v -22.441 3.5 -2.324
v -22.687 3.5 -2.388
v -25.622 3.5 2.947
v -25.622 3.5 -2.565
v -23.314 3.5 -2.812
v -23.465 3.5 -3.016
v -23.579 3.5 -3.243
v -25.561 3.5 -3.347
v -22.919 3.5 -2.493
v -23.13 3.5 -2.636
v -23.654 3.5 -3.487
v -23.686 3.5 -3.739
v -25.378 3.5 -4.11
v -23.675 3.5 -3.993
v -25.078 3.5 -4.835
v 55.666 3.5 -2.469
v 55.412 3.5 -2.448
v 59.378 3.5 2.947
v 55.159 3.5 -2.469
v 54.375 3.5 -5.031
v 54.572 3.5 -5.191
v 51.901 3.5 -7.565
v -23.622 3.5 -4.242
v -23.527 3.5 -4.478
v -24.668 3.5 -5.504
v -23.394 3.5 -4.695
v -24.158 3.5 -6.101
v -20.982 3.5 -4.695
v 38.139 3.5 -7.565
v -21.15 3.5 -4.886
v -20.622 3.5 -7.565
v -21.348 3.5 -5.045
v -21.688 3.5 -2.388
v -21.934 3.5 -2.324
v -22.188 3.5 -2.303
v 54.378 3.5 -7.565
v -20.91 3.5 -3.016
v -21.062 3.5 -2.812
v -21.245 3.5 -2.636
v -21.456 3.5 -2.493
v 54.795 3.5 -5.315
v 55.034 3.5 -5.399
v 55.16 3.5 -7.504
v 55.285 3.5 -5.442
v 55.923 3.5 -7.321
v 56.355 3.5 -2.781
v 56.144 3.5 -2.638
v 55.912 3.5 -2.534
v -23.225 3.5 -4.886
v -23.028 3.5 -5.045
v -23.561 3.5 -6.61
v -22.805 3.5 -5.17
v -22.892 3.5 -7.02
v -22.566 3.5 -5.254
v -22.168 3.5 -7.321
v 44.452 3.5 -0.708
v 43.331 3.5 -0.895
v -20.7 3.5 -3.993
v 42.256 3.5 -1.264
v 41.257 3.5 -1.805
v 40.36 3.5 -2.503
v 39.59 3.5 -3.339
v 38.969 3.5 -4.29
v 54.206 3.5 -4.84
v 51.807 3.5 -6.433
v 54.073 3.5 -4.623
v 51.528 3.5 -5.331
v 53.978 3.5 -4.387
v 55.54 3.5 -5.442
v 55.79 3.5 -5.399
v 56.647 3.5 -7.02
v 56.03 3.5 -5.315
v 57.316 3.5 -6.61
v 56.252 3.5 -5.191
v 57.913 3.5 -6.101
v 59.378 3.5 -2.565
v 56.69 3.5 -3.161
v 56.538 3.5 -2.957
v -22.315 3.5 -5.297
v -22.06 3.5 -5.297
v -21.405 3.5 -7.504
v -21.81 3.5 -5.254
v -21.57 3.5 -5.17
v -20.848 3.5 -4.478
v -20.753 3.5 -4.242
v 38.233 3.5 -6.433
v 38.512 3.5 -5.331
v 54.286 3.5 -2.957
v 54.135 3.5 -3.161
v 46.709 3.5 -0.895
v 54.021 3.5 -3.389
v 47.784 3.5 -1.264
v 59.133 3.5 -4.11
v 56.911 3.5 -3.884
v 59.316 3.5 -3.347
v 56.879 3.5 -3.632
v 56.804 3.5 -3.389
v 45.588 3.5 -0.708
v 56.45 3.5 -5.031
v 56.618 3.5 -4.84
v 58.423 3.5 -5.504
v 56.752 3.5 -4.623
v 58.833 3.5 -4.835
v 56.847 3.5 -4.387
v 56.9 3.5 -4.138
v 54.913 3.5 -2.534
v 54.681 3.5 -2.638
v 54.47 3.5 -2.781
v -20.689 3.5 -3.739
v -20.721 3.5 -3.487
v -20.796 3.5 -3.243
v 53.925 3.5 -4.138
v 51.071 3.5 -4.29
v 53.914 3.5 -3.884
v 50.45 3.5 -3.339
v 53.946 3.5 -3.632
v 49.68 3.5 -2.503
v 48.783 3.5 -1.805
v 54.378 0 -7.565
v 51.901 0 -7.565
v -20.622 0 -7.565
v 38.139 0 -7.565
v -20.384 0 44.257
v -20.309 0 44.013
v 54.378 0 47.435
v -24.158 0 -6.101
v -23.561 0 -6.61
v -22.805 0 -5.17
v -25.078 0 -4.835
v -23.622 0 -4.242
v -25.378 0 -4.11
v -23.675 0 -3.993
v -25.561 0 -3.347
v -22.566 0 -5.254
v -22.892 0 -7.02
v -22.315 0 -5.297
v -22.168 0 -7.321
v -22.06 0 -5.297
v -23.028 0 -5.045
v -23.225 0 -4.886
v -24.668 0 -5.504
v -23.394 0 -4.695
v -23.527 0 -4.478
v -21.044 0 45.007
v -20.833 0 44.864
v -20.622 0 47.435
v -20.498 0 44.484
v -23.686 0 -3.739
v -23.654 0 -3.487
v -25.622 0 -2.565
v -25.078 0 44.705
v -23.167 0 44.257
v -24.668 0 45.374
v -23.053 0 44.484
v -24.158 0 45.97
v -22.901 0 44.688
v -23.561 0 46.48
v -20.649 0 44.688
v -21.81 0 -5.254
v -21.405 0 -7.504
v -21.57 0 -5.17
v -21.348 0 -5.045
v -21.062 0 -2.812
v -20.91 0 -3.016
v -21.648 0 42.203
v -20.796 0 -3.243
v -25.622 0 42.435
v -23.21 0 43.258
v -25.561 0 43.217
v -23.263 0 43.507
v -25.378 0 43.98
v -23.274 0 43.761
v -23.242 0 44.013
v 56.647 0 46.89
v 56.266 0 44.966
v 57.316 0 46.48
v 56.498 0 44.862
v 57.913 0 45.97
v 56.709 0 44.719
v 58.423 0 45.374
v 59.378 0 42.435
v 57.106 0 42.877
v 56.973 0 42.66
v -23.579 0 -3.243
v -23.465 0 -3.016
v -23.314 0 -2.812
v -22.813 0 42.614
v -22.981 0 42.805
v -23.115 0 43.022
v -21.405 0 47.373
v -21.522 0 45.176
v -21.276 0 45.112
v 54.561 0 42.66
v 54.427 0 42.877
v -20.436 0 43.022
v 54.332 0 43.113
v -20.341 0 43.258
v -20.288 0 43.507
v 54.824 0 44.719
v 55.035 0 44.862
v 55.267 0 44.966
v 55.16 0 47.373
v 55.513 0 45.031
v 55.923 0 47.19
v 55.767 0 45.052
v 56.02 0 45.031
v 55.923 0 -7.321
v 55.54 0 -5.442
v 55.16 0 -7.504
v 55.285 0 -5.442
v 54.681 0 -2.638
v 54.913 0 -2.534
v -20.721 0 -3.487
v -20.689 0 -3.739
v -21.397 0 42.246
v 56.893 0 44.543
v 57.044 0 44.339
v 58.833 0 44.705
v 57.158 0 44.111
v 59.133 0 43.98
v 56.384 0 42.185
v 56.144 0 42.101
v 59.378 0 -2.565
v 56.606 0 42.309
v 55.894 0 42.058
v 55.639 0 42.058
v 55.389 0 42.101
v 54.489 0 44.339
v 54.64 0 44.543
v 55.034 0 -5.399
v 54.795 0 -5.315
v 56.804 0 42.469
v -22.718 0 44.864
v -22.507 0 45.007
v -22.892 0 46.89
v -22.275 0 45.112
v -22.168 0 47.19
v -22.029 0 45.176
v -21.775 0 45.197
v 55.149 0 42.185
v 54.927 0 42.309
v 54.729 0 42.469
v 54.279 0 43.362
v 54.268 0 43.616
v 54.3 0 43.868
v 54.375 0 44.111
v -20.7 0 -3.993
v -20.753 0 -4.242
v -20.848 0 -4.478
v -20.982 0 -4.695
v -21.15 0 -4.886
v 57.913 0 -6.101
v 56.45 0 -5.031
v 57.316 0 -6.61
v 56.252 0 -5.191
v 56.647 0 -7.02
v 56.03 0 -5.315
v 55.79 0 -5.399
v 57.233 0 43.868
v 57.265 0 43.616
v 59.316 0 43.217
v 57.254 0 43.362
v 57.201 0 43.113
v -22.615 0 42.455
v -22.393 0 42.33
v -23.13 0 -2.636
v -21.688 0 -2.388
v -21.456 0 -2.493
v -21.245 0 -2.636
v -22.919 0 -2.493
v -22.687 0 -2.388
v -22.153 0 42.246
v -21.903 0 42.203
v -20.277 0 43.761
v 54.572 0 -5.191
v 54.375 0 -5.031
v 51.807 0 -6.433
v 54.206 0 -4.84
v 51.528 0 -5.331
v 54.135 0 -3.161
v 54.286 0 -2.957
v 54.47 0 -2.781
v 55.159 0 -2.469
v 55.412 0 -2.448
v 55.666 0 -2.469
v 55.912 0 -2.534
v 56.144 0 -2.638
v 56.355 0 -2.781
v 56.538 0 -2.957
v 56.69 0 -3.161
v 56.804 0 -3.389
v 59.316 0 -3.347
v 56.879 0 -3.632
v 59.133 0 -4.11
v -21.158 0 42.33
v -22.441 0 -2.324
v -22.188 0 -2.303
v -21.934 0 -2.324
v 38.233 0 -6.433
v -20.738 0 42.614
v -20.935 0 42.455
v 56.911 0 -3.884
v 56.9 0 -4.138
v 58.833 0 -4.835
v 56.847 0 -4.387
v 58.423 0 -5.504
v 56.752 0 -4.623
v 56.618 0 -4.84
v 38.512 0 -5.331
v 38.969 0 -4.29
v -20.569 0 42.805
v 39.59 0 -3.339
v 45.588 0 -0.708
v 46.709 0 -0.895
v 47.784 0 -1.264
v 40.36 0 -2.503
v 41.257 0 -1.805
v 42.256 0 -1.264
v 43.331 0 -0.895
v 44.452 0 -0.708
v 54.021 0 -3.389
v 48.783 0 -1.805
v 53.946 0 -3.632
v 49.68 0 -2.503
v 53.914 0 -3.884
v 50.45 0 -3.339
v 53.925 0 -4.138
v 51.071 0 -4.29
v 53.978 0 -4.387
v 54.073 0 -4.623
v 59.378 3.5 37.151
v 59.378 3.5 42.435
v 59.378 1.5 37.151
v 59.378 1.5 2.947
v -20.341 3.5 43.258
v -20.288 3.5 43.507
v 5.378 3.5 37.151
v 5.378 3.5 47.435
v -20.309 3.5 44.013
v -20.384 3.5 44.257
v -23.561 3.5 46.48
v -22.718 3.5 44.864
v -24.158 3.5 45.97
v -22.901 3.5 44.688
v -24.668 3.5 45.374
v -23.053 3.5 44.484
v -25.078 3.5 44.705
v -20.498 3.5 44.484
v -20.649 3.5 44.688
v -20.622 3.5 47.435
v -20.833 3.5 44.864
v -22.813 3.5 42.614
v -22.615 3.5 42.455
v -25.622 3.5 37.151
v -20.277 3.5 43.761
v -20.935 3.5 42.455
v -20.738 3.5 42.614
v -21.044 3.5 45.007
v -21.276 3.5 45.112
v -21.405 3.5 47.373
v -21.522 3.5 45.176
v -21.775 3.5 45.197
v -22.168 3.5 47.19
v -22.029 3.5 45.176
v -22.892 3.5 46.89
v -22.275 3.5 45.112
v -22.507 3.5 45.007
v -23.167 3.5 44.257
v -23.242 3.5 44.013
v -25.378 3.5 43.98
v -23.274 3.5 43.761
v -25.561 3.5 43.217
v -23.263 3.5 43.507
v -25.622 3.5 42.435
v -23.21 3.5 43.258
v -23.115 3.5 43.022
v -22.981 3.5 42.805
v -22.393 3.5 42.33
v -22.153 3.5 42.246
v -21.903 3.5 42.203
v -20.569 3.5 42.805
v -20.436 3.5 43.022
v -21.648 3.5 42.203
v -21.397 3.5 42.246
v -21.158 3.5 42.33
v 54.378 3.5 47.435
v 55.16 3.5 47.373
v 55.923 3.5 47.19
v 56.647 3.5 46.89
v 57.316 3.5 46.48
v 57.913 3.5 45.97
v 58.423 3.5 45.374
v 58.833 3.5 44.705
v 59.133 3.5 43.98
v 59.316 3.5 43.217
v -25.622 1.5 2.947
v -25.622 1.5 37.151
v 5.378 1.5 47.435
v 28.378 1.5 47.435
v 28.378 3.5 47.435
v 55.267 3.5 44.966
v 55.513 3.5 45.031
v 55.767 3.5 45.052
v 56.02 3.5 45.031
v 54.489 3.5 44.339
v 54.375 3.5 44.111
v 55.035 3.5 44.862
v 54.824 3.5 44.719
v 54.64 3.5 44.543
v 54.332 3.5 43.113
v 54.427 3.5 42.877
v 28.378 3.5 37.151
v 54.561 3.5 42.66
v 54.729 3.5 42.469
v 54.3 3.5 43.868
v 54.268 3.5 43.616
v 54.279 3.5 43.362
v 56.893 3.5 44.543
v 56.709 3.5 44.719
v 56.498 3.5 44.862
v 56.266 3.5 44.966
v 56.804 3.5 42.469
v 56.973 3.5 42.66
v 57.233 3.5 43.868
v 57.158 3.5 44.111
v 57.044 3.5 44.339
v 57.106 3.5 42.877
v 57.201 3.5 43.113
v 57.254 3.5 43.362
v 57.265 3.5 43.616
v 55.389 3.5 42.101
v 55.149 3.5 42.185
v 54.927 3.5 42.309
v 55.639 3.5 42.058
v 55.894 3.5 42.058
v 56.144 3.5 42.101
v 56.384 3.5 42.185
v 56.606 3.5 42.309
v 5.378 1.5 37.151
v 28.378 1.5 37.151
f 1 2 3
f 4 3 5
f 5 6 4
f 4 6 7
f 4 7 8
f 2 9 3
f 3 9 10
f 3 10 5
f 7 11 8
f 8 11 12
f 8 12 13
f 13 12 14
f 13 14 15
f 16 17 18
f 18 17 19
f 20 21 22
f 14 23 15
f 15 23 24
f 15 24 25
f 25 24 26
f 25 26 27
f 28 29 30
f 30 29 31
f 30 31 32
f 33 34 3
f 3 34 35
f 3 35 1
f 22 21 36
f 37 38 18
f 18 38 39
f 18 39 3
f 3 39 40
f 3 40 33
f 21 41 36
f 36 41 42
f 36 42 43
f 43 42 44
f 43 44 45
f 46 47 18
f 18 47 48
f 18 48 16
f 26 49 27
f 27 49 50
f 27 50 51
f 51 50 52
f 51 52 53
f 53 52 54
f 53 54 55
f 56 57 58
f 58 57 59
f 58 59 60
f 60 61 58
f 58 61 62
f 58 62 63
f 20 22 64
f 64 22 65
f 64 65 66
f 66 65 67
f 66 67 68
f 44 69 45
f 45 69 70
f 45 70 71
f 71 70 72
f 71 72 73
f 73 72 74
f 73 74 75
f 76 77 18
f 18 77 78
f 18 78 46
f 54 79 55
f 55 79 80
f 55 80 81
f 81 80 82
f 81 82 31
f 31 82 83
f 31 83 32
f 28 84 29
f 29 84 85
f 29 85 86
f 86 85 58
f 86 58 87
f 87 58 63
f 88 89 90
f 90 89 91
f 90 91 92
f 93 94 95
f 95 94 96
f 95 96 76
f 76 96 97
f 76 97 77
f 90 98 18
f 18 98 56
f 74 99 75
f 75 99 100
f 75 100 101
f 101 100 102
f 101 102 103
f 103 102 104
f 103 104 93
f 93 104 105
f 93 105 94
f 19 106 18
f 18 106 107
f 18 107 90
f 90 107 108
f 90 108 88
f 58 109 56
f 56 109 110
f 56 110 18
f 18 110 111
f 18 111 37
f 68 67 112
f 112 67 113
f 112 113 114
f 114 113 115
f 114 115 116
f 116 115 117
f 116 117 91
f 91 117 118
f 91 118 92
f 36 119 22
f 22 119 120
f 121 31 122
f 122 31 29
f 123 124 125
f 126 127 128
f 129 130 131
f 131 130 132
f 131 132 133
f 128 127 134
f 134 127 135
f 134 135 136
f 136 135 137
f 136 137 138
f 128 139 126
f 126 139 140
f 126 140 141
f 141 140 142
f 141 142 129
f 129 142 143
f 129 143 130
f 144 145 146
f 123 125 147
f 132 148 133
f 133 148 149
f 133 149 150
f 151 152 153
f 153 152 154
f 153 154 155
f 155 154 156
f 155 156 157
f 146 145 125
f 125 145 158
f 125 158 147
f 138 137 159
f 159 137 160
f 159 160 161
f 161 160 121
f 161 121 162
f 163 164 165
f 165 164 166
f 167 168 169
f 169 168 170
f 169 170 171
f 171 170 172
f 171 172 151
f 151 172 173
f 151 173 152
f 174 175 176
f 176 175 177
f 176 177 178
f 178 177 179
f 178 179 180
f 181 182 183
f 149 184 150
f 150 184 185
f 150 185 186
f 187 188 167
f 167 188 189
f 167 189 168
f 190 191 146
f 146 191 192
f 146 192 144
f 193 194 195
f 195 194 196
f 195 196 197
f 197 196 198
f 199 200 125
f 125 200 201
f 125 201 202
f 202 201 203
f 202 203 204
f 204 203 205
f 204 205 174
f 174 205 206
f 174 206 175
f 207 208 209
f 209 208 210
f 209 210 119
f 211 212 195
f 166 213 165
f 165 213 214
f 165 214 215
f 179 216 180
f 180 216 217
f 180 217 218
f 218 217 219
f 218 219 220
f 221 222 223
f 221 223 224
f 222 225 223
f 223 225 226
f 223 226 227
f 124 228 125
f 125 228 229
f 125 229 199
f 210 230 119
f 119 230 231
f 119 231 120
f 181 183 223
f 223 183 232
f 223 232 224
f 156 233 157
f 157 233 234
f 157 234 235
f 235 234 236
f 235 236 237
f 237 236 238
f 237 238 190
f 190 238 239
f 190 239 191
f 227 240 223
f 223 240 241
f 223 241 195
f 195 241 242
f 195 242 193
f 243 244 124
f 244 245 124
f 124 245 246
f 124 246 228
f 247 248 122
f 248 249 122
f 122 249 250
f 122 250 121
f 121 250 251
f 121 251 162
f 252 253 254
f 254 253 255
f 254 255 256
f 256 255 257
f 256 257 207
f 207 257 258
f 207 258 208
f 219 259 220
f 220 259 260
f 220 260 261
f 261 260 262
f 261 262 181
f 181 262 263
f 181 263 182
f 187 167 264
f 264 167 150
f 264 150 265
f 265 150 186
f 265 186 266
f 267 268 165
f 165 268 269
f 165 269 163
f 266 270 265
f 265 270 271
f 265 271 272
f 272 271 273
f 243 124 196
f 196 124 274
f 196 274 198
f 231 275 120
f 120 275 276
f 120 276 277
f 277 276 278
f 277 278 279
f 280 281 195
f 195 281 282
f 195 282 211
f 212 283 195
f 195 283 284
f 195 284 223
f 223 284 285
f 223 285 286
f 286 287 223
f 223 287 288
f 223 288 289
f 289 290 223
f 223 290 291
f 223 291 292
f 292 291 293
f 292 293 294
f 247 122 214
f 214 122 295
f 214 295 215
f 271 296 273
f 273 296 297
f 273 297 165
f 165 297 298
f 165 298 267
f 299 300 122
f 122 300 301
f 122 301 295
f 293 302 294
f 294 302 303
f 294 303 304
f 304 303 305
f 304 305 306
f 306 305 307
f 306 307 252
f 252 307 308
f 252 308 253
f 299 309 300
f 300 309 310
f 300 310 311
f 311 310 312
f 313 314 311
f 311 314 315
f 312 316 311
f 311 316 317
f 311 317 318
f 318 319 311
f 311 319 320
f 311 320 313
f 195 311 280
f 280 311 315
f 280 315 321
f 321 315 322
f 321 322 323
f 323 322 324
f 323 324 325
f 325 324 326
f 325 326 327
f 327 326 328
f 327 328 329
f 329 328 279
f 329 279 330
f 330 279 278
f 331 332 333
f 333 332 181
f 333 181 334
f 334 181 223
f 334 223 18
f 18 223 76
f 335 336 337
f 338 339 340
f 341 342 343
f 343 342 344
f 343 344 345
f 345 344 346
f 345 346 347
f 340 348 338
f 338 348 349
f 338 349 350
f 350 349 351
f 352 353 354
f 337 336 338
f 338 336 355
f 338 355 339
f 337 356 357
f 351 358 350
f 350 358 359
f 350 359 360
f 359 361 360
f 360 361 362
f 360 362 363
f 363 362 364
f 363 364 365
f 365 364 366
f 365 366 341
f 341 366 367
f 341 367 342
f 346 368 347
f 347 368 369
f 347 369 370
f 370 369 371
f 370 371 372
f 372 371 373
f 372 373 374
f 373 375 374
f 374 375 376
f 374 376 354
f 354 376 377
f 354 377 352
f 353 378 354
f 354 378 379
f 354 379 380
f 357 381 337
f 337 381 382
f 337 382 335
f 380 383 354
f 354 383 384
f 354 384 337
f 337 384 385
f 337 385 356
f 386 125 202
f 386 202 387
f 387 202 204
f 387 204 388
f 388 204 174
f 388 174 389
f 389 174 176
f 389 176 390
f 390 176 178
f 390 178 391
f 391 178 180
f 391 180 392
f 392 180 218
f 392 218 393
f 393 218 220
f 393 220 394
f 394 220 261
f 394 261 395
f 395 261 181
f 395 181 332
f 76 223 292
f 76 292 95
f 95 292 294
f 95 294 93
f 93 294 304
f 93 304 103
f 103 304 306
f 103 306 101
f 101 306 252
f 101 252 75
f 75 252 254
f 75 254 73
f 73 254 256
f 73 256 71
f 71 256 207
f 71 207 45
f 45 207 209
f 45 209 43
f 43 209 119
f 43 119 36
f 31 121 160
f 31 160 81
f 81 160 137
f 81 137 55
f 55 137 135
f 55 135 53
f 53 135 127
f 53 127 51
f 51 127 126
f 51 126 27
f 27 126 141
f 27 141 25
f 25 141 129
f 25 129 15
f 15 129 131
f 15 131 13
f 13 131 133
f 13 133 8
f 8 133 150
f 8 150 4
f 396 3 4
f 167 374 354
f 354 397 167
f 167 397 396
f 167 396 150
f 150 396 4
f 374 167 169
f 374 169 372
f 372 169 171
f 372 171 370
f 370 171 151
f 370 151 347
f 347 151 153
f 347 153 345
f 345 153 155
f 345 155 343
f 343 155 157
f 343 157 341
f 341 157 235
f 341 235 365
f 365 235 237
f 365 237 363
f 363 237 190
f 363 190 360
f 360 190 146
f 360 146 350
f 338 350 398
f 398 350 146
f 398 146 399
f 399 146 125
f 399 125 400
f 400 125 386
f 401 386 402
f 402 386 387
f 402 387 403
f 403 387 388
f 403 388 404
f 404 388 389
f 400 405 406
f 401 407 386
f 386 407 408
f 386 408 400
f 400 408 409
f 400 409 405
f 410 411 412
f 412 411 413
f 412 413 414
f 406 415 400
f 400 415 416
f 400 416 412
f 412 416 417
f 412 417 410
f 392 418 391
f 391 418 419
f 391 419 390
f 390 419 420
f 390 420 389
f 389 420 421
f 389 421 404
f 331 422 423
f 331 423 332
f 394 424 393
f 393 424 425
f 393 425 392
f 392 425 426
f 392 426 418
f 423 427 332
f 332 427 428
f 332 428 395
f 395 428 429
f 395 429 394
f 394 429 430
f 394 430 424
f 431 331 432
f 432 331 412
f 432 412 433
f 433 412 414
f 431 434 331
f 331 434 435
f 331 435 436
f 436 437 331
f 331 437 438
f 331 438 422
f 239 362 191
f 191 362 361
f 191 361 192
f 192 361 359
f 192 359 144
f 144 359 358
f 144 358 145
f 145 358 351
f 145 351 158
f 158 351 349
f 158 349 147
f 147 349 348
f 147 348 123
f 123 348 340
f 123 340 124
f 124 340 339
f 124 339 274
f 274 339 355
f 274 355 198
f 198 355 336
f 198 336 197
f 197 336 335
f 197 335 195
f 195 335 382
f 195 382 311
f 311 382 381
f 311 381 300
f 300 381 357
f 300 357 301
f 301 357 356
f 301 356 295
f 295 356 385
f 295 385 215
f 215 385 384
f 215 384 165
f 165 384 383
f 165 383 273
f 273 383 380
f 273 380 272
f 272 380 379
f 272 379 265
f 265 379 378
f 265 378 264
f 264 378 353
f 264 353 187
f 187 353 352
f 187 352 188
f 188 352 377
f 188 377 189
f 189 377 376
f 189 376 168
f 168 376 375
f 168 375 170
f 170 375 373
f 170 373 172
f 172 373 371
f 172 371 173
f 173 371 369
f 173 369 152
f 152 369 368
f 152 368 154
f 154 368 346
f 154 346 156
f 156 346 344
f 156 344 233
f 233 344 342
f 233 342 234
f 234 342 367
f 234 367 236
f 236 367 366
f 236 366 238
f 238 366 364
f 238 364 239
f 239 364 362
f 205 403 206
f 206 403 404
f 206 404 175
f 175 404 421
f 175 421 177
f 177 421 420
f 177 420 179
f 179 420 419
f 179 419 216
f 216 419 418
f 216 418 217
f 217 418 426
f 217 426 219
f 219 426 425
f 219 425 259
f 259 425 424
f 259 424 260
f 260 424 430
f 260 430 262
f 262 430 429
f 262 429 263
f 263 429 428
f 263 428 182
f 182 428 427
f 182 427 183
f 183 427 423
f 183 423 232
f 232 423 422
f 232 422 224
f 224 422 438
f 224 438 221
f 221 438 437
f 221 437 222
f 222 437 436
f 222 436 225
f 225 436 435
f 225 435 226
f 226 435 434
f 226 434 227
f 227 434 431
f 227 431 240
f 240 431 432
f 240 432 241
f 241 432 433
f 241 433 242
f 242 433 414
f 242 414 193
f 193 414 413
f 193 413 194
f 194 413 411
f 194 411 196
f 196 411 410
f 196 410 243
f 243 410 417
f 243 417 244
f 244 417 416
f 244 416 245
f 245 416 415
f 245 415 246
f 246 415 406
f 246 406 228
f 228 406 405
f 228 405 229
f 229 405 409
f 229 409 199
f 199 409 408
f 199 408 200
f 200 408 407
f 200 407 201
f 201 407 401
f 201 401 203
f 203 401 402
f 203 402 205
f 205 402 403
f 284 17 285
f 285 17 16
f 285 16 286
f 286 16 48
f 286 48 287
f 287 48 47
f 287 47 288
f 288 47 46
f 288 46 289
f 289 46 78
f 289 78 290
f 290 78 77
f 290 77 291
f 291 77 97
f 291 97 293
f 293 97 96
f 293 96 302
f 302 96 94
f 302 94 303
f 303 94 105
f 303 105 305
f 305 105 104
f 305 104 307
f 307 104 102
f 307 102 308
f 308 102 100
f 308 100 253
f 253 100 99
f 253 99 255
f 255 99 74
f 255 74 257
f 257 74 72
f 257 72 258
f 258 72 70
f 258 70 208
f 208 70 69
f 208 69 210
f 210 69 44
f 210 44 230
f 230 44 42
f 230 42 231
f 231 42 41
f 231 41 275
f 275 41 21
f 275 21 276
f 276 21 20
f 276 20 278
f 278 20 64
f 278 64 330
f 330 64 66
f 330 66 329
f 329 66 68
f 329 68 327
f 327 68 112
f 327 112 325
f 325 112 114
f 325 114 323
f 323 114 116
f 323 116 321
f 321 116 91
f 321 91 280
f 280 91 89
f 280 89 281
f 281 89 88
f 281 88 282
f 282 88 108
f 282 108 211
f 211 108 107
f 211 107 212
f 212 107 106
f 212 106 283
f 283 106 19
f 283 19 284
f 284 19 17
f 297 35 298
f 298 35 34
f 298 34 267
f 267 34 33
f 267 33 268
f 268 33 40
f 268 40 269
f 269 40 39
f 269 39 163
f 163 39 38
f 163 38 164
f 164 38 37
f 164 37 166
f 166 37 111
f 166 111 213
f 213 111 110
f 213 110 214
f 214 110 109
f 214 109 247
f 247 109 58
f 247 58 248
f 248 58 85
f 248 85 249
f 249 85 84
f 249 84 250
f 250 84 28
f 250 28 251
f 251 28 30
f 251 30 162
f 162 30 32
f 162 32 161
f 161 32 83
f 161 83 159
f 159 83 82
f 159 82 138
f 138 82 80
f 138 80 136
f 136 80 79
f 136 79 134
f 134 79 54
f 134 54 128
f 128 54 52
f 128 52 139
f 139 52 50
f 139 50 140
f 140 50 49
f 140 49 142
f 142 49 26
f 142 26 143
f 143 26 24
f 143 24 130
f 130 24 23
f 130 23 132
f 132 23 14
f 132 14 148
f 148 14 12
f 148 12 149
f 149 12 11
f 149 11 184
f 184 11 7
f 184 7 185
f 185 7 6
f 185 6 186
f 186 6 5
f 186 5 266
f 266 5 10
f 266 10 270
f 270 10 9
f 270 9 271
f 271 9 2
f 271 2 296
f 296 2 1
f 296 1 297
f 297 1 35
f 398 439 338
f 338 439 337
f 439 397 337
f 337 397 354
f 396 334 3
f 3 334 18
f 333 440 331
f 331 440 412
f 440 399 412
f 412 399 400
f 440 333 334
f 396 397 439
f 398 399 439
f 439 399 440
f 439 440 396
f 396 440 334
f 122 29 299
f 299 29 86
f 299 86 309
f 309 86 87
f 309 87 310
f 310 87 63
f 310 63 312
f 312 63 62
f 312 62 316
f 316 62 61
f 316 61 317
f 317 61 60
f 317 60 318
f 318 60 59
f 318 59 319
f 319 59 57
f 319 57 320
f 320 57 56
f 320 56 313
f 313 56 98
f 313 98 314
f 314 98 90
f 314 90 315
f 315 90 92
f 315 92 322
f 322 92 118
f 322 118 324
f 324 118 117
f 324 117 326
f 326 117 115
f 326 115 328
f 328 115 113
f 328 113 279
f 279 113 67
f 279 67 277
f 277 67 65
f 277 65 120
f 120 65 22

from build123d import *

# Parameters (mm, degrees)
BOSS_EXTRUDE1_DEPTH = 3.5
SKETCH2_R           = 1.5
CUT_EXTRUDE1_DEPTH  = 3.5
SKETCH3_W           = 23
SKETCH3_H           = 10.283770076
CUT_EXTRUDE2_DEPTH  = 2
CUT_EXTRUDE6_DEPTH  = 3.5


with BuildPart() as part:
    # Sketch1 → Boss-Extrude1 (new body)
    with BuildSketch(Plane(origin=(0, 0, 0), x_dir=(1, 0, 0), z_dir=(0, 1, 0))):
        with BuildLine():
            Line((-20.62248996, 7.565261044), (54.37751004, 7.565261044))
            ThreePointArc((54.37751004, 7.565261044), (57.913043946, 6.10079495), (59.37751004, 2.565261044))
            Line((59.37751004, 2.565261044), (59.37751004, -42.434738956))
            ThreePointArc((59.37751004, -42.434738956), (57.913043946, -45.970272862), (54.37751004, -47.434738956))
            Line((54.37751004, -47.434738956), (-20.62248996, -47.434738956))
            ThreePointArc((-20.62248996, -47.434738956), (-24.158023866, -45.970272862), (-25.62248996, -42.434738956))
            Line((-25.62248996, -42.434738956), (-25.62248996, 2.565261044))
            ThreePointArc((-25.62248996, 2.565261044), (-24.158023866, 6.10079495), (-20.62248996, 7.565261044))
        make_face()
    extrude(amount=BOSS_EXTRUDE1_DEPTH)

    # Sketch2 → Cut-Extrude1 (cut)
    with BuildSketch(Plane(origin=(0, 3.5, 0), x_dir=(1, 0, 0), z_dir=(0, 1, 0))):
        with Locations((-22.187566987, 3.802718615)):
            Circle(SKETCH2_R)
        with Locations((55.412433013, 3.947865339)):
            Circle(SKETCH2_R)
        with Locations((55.766505812, -43.552134661)):
            Circle(SKETCH2_R)
        with Locations((-21.775437199, -43.697281385)):
            Circle(SKETCH2_R)
    extrude(amount=-CUT_EXTRUDE1_DEPTH, mode=Mode.SUBTRACT)

    # Sketch3 → Cut-Extrude2 (cut)
    with BuildSketch(Plane(origin=(0, 3.5, 0), x_dir=(1, 0, 0), z_dir=(0, 1, 0))):
        with Locations((16.87751004, -42.292853918)):
            Rectangle(SKETCH3_W, SKETCH3_H)
        Polygon((59.37751004, -2.947281385), (-25.62248996, -2.947281385), (-25.62248996, -37.15096888), (5.37751004, -37.15096888), (28.37751004, -37.15096888), (59.37751004, -37.15096888), align=None)
    extrude(amount=-CUT_EXTRUDE2_DEPTH, mode=Mode.SUBTRACT)

    # Sketch9 → Cut-Extrude6 (cut)
    with BuildSketch(Plane(origin=(0, 3.5, 0), x_dir=(1, 0, 0), z_dir=(0, 1, 0))):
        with BuildLine():
            Line((38.139406345, 7.565261044), (51.719818859, 7.565261044))
            Line((51.719818859, 7.565261044), (51.90057812, 7.565261044))
            ThreePointArc((51.90057812, 7.565261044), (45.019992232, 0.684675157), (38.139406345, 7.565261044))
        make_face()
    extrude(amount=-CUT_EXTRUDE6_DEPTH, mode=Mode.SUBTRACT)


solid = part.part
